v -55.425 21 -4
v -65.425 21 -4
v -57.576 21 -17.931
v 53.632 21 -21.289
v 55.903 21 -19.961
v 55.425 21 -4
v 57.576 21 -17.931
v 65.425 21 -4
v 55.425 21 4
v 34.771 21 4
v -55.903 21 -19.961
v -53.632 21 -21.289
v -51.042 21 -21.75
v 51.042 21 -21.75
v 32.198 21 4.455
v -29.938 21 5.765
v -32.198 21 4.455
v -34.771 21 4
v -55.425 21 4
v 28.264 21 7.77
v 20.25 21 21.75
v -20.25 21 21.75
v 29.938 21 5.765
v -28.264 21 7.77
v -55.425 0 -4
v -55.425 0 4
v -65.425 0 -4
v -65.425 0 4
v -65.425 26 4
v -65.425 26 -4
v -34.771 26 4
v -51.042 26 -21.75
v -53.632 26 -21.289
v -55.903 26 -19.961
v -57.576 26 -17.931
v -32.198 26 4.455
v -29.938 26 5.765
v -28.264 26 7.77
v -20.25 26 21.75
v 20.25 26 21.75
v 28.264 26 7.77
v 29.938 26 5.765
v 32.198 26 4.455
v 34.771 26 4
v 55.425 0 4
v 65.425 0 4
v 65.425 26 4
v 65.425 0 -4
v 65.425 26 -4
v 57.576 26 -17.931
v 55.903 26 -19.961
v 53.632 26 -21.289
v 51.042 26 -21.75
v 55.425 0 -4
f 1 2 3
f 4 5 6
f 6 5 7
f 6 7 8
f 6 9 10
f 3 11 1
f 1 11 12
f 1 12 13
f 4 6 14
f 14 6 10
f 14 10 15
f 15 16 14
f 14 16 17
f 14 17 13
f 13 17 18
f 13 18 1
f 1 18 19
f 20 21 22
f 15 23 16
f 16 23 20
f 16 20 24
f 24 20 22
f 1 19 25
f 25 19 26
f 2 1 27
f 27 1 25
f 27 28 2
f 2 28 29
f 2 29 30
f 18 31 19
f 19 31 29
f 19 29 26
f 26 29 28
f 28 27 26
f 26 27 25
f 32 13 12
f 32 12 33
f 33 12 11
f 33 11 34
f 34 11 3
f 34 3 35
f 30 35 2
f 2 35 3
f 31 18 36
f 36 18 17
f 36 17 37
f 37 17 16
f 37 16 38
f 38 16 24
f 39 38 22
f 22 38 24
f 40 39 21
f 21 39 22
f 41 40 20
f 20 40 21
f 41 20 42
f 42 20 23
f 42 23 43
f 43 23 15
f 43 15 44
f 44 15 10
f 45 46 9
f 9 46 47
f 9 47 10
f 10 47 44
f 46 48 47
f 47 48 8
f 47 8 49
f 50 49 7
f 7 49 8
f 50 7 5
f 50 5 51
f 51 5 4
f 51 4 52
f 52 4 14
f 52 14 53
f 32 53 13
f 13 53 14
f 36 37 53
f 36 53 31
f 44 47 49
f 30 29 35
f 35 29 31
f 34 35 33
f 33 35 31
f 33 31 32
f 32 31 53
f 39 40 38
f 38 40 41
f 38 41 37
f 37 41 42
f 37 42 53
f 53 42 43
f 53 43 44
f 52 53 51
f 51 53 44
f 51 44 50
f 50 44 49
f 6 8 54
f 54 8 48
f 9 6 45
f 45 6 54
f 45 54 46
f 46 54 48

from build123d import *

# Parameters (mm, degrees)
SKETCH1_W             = 10
SKETCH1_H             = 8
BOSS_EXTRUDE1_DEPTH   = 21
BOSS_EXTRUDE1_2_DEPTH = 21
BOSS_EXTRUDE2_DEPTH   = 5


with BuildPart() as part:
    # Sketch1 → Boss-Extrude1 (new body)
    with BuildSketch(Plane(origin=(0, 0, 0), x_dir=(1, 0, 0), z_dir=(0, 1, 0))):
        with Locations((-60.425, 0)):
            Rectangle(SKETCH1_W, SKETCH1_H)
    extrude(amount=BOSS_EXTRUDE1_DEPTH)



with BuildPart() as body_2:
    # Sketch1 → Boss-Extrude1 2 (new body)
    with BuildSketch(Plane(origin=(0, 0, 0), x_dir=(1, 0, 0), z_dir=(0, 1, 0))):
        with Locations((60.425, 0)):
            Rectangle(SKETCH1_W, SKETCH1_H)
    extrude(amount=BOSS_EXTRUDE1_2_DEPTH)


with BuildPart() as part_1:
    add(part.part)

    add(body_2.part)  # Boss-Extrude2 merges body 2
    # Sketch2 → Boss-Extrude2 (add)
    with BuildSketch(Plane(origin=(0, 21, 0), x_dir=(1, 0, 0), z_dir=(0, 1, 0))):
        with BuildLine():
            Line((-21.75, 21.75), (21.75, 21.75))
            Line((21.75, 21.75), (51.042007296, 21.75))
            ThreePointArc((51.042007296, 21.75), (54.826187522, 20.725336286), (57.576364504, 17.931328005))
            Line((57.576364504, 17.931328005), (65.425, 4))
            Line((65.425, 4), (65.425, -4))
            Line((65.425, -4), (34.770583875, -4))
            ThreePointArc((34.770583875, -4), (31.010557787, -5.010608363), (28.263842049, -7.770078981))
            Line((28.263842049, -7.770078981), (20.25, -21.75))
            Line((20.25, -21.75), (-20.25, -21.75))
            Line((-20.25, -21.75), (-28.263842049, -7.770078981))
            ThreePointArc((-28.263842049, -7.770078981), (-31.010557787, -5.010608363), (-34.770583875, -4))
            Line((-34.770583875, -4), (-65.425, -4))
            Line((-65.425, -4), (-65.425, 4))
            Line((-65.425, 4), (-57.576364504, 17.931328005))
            ThreePointArc((-57.576364504, 17.931328005), (-54.826187522, 20.725336286), (-51.042007296, 21.75))
            Line((-51.042007296, 21.75), (-21.75, 21.75))
        make_face()
    extrude(amount=BOSS_EXTRUDE2_DEPTH)


solid = part_1.part
